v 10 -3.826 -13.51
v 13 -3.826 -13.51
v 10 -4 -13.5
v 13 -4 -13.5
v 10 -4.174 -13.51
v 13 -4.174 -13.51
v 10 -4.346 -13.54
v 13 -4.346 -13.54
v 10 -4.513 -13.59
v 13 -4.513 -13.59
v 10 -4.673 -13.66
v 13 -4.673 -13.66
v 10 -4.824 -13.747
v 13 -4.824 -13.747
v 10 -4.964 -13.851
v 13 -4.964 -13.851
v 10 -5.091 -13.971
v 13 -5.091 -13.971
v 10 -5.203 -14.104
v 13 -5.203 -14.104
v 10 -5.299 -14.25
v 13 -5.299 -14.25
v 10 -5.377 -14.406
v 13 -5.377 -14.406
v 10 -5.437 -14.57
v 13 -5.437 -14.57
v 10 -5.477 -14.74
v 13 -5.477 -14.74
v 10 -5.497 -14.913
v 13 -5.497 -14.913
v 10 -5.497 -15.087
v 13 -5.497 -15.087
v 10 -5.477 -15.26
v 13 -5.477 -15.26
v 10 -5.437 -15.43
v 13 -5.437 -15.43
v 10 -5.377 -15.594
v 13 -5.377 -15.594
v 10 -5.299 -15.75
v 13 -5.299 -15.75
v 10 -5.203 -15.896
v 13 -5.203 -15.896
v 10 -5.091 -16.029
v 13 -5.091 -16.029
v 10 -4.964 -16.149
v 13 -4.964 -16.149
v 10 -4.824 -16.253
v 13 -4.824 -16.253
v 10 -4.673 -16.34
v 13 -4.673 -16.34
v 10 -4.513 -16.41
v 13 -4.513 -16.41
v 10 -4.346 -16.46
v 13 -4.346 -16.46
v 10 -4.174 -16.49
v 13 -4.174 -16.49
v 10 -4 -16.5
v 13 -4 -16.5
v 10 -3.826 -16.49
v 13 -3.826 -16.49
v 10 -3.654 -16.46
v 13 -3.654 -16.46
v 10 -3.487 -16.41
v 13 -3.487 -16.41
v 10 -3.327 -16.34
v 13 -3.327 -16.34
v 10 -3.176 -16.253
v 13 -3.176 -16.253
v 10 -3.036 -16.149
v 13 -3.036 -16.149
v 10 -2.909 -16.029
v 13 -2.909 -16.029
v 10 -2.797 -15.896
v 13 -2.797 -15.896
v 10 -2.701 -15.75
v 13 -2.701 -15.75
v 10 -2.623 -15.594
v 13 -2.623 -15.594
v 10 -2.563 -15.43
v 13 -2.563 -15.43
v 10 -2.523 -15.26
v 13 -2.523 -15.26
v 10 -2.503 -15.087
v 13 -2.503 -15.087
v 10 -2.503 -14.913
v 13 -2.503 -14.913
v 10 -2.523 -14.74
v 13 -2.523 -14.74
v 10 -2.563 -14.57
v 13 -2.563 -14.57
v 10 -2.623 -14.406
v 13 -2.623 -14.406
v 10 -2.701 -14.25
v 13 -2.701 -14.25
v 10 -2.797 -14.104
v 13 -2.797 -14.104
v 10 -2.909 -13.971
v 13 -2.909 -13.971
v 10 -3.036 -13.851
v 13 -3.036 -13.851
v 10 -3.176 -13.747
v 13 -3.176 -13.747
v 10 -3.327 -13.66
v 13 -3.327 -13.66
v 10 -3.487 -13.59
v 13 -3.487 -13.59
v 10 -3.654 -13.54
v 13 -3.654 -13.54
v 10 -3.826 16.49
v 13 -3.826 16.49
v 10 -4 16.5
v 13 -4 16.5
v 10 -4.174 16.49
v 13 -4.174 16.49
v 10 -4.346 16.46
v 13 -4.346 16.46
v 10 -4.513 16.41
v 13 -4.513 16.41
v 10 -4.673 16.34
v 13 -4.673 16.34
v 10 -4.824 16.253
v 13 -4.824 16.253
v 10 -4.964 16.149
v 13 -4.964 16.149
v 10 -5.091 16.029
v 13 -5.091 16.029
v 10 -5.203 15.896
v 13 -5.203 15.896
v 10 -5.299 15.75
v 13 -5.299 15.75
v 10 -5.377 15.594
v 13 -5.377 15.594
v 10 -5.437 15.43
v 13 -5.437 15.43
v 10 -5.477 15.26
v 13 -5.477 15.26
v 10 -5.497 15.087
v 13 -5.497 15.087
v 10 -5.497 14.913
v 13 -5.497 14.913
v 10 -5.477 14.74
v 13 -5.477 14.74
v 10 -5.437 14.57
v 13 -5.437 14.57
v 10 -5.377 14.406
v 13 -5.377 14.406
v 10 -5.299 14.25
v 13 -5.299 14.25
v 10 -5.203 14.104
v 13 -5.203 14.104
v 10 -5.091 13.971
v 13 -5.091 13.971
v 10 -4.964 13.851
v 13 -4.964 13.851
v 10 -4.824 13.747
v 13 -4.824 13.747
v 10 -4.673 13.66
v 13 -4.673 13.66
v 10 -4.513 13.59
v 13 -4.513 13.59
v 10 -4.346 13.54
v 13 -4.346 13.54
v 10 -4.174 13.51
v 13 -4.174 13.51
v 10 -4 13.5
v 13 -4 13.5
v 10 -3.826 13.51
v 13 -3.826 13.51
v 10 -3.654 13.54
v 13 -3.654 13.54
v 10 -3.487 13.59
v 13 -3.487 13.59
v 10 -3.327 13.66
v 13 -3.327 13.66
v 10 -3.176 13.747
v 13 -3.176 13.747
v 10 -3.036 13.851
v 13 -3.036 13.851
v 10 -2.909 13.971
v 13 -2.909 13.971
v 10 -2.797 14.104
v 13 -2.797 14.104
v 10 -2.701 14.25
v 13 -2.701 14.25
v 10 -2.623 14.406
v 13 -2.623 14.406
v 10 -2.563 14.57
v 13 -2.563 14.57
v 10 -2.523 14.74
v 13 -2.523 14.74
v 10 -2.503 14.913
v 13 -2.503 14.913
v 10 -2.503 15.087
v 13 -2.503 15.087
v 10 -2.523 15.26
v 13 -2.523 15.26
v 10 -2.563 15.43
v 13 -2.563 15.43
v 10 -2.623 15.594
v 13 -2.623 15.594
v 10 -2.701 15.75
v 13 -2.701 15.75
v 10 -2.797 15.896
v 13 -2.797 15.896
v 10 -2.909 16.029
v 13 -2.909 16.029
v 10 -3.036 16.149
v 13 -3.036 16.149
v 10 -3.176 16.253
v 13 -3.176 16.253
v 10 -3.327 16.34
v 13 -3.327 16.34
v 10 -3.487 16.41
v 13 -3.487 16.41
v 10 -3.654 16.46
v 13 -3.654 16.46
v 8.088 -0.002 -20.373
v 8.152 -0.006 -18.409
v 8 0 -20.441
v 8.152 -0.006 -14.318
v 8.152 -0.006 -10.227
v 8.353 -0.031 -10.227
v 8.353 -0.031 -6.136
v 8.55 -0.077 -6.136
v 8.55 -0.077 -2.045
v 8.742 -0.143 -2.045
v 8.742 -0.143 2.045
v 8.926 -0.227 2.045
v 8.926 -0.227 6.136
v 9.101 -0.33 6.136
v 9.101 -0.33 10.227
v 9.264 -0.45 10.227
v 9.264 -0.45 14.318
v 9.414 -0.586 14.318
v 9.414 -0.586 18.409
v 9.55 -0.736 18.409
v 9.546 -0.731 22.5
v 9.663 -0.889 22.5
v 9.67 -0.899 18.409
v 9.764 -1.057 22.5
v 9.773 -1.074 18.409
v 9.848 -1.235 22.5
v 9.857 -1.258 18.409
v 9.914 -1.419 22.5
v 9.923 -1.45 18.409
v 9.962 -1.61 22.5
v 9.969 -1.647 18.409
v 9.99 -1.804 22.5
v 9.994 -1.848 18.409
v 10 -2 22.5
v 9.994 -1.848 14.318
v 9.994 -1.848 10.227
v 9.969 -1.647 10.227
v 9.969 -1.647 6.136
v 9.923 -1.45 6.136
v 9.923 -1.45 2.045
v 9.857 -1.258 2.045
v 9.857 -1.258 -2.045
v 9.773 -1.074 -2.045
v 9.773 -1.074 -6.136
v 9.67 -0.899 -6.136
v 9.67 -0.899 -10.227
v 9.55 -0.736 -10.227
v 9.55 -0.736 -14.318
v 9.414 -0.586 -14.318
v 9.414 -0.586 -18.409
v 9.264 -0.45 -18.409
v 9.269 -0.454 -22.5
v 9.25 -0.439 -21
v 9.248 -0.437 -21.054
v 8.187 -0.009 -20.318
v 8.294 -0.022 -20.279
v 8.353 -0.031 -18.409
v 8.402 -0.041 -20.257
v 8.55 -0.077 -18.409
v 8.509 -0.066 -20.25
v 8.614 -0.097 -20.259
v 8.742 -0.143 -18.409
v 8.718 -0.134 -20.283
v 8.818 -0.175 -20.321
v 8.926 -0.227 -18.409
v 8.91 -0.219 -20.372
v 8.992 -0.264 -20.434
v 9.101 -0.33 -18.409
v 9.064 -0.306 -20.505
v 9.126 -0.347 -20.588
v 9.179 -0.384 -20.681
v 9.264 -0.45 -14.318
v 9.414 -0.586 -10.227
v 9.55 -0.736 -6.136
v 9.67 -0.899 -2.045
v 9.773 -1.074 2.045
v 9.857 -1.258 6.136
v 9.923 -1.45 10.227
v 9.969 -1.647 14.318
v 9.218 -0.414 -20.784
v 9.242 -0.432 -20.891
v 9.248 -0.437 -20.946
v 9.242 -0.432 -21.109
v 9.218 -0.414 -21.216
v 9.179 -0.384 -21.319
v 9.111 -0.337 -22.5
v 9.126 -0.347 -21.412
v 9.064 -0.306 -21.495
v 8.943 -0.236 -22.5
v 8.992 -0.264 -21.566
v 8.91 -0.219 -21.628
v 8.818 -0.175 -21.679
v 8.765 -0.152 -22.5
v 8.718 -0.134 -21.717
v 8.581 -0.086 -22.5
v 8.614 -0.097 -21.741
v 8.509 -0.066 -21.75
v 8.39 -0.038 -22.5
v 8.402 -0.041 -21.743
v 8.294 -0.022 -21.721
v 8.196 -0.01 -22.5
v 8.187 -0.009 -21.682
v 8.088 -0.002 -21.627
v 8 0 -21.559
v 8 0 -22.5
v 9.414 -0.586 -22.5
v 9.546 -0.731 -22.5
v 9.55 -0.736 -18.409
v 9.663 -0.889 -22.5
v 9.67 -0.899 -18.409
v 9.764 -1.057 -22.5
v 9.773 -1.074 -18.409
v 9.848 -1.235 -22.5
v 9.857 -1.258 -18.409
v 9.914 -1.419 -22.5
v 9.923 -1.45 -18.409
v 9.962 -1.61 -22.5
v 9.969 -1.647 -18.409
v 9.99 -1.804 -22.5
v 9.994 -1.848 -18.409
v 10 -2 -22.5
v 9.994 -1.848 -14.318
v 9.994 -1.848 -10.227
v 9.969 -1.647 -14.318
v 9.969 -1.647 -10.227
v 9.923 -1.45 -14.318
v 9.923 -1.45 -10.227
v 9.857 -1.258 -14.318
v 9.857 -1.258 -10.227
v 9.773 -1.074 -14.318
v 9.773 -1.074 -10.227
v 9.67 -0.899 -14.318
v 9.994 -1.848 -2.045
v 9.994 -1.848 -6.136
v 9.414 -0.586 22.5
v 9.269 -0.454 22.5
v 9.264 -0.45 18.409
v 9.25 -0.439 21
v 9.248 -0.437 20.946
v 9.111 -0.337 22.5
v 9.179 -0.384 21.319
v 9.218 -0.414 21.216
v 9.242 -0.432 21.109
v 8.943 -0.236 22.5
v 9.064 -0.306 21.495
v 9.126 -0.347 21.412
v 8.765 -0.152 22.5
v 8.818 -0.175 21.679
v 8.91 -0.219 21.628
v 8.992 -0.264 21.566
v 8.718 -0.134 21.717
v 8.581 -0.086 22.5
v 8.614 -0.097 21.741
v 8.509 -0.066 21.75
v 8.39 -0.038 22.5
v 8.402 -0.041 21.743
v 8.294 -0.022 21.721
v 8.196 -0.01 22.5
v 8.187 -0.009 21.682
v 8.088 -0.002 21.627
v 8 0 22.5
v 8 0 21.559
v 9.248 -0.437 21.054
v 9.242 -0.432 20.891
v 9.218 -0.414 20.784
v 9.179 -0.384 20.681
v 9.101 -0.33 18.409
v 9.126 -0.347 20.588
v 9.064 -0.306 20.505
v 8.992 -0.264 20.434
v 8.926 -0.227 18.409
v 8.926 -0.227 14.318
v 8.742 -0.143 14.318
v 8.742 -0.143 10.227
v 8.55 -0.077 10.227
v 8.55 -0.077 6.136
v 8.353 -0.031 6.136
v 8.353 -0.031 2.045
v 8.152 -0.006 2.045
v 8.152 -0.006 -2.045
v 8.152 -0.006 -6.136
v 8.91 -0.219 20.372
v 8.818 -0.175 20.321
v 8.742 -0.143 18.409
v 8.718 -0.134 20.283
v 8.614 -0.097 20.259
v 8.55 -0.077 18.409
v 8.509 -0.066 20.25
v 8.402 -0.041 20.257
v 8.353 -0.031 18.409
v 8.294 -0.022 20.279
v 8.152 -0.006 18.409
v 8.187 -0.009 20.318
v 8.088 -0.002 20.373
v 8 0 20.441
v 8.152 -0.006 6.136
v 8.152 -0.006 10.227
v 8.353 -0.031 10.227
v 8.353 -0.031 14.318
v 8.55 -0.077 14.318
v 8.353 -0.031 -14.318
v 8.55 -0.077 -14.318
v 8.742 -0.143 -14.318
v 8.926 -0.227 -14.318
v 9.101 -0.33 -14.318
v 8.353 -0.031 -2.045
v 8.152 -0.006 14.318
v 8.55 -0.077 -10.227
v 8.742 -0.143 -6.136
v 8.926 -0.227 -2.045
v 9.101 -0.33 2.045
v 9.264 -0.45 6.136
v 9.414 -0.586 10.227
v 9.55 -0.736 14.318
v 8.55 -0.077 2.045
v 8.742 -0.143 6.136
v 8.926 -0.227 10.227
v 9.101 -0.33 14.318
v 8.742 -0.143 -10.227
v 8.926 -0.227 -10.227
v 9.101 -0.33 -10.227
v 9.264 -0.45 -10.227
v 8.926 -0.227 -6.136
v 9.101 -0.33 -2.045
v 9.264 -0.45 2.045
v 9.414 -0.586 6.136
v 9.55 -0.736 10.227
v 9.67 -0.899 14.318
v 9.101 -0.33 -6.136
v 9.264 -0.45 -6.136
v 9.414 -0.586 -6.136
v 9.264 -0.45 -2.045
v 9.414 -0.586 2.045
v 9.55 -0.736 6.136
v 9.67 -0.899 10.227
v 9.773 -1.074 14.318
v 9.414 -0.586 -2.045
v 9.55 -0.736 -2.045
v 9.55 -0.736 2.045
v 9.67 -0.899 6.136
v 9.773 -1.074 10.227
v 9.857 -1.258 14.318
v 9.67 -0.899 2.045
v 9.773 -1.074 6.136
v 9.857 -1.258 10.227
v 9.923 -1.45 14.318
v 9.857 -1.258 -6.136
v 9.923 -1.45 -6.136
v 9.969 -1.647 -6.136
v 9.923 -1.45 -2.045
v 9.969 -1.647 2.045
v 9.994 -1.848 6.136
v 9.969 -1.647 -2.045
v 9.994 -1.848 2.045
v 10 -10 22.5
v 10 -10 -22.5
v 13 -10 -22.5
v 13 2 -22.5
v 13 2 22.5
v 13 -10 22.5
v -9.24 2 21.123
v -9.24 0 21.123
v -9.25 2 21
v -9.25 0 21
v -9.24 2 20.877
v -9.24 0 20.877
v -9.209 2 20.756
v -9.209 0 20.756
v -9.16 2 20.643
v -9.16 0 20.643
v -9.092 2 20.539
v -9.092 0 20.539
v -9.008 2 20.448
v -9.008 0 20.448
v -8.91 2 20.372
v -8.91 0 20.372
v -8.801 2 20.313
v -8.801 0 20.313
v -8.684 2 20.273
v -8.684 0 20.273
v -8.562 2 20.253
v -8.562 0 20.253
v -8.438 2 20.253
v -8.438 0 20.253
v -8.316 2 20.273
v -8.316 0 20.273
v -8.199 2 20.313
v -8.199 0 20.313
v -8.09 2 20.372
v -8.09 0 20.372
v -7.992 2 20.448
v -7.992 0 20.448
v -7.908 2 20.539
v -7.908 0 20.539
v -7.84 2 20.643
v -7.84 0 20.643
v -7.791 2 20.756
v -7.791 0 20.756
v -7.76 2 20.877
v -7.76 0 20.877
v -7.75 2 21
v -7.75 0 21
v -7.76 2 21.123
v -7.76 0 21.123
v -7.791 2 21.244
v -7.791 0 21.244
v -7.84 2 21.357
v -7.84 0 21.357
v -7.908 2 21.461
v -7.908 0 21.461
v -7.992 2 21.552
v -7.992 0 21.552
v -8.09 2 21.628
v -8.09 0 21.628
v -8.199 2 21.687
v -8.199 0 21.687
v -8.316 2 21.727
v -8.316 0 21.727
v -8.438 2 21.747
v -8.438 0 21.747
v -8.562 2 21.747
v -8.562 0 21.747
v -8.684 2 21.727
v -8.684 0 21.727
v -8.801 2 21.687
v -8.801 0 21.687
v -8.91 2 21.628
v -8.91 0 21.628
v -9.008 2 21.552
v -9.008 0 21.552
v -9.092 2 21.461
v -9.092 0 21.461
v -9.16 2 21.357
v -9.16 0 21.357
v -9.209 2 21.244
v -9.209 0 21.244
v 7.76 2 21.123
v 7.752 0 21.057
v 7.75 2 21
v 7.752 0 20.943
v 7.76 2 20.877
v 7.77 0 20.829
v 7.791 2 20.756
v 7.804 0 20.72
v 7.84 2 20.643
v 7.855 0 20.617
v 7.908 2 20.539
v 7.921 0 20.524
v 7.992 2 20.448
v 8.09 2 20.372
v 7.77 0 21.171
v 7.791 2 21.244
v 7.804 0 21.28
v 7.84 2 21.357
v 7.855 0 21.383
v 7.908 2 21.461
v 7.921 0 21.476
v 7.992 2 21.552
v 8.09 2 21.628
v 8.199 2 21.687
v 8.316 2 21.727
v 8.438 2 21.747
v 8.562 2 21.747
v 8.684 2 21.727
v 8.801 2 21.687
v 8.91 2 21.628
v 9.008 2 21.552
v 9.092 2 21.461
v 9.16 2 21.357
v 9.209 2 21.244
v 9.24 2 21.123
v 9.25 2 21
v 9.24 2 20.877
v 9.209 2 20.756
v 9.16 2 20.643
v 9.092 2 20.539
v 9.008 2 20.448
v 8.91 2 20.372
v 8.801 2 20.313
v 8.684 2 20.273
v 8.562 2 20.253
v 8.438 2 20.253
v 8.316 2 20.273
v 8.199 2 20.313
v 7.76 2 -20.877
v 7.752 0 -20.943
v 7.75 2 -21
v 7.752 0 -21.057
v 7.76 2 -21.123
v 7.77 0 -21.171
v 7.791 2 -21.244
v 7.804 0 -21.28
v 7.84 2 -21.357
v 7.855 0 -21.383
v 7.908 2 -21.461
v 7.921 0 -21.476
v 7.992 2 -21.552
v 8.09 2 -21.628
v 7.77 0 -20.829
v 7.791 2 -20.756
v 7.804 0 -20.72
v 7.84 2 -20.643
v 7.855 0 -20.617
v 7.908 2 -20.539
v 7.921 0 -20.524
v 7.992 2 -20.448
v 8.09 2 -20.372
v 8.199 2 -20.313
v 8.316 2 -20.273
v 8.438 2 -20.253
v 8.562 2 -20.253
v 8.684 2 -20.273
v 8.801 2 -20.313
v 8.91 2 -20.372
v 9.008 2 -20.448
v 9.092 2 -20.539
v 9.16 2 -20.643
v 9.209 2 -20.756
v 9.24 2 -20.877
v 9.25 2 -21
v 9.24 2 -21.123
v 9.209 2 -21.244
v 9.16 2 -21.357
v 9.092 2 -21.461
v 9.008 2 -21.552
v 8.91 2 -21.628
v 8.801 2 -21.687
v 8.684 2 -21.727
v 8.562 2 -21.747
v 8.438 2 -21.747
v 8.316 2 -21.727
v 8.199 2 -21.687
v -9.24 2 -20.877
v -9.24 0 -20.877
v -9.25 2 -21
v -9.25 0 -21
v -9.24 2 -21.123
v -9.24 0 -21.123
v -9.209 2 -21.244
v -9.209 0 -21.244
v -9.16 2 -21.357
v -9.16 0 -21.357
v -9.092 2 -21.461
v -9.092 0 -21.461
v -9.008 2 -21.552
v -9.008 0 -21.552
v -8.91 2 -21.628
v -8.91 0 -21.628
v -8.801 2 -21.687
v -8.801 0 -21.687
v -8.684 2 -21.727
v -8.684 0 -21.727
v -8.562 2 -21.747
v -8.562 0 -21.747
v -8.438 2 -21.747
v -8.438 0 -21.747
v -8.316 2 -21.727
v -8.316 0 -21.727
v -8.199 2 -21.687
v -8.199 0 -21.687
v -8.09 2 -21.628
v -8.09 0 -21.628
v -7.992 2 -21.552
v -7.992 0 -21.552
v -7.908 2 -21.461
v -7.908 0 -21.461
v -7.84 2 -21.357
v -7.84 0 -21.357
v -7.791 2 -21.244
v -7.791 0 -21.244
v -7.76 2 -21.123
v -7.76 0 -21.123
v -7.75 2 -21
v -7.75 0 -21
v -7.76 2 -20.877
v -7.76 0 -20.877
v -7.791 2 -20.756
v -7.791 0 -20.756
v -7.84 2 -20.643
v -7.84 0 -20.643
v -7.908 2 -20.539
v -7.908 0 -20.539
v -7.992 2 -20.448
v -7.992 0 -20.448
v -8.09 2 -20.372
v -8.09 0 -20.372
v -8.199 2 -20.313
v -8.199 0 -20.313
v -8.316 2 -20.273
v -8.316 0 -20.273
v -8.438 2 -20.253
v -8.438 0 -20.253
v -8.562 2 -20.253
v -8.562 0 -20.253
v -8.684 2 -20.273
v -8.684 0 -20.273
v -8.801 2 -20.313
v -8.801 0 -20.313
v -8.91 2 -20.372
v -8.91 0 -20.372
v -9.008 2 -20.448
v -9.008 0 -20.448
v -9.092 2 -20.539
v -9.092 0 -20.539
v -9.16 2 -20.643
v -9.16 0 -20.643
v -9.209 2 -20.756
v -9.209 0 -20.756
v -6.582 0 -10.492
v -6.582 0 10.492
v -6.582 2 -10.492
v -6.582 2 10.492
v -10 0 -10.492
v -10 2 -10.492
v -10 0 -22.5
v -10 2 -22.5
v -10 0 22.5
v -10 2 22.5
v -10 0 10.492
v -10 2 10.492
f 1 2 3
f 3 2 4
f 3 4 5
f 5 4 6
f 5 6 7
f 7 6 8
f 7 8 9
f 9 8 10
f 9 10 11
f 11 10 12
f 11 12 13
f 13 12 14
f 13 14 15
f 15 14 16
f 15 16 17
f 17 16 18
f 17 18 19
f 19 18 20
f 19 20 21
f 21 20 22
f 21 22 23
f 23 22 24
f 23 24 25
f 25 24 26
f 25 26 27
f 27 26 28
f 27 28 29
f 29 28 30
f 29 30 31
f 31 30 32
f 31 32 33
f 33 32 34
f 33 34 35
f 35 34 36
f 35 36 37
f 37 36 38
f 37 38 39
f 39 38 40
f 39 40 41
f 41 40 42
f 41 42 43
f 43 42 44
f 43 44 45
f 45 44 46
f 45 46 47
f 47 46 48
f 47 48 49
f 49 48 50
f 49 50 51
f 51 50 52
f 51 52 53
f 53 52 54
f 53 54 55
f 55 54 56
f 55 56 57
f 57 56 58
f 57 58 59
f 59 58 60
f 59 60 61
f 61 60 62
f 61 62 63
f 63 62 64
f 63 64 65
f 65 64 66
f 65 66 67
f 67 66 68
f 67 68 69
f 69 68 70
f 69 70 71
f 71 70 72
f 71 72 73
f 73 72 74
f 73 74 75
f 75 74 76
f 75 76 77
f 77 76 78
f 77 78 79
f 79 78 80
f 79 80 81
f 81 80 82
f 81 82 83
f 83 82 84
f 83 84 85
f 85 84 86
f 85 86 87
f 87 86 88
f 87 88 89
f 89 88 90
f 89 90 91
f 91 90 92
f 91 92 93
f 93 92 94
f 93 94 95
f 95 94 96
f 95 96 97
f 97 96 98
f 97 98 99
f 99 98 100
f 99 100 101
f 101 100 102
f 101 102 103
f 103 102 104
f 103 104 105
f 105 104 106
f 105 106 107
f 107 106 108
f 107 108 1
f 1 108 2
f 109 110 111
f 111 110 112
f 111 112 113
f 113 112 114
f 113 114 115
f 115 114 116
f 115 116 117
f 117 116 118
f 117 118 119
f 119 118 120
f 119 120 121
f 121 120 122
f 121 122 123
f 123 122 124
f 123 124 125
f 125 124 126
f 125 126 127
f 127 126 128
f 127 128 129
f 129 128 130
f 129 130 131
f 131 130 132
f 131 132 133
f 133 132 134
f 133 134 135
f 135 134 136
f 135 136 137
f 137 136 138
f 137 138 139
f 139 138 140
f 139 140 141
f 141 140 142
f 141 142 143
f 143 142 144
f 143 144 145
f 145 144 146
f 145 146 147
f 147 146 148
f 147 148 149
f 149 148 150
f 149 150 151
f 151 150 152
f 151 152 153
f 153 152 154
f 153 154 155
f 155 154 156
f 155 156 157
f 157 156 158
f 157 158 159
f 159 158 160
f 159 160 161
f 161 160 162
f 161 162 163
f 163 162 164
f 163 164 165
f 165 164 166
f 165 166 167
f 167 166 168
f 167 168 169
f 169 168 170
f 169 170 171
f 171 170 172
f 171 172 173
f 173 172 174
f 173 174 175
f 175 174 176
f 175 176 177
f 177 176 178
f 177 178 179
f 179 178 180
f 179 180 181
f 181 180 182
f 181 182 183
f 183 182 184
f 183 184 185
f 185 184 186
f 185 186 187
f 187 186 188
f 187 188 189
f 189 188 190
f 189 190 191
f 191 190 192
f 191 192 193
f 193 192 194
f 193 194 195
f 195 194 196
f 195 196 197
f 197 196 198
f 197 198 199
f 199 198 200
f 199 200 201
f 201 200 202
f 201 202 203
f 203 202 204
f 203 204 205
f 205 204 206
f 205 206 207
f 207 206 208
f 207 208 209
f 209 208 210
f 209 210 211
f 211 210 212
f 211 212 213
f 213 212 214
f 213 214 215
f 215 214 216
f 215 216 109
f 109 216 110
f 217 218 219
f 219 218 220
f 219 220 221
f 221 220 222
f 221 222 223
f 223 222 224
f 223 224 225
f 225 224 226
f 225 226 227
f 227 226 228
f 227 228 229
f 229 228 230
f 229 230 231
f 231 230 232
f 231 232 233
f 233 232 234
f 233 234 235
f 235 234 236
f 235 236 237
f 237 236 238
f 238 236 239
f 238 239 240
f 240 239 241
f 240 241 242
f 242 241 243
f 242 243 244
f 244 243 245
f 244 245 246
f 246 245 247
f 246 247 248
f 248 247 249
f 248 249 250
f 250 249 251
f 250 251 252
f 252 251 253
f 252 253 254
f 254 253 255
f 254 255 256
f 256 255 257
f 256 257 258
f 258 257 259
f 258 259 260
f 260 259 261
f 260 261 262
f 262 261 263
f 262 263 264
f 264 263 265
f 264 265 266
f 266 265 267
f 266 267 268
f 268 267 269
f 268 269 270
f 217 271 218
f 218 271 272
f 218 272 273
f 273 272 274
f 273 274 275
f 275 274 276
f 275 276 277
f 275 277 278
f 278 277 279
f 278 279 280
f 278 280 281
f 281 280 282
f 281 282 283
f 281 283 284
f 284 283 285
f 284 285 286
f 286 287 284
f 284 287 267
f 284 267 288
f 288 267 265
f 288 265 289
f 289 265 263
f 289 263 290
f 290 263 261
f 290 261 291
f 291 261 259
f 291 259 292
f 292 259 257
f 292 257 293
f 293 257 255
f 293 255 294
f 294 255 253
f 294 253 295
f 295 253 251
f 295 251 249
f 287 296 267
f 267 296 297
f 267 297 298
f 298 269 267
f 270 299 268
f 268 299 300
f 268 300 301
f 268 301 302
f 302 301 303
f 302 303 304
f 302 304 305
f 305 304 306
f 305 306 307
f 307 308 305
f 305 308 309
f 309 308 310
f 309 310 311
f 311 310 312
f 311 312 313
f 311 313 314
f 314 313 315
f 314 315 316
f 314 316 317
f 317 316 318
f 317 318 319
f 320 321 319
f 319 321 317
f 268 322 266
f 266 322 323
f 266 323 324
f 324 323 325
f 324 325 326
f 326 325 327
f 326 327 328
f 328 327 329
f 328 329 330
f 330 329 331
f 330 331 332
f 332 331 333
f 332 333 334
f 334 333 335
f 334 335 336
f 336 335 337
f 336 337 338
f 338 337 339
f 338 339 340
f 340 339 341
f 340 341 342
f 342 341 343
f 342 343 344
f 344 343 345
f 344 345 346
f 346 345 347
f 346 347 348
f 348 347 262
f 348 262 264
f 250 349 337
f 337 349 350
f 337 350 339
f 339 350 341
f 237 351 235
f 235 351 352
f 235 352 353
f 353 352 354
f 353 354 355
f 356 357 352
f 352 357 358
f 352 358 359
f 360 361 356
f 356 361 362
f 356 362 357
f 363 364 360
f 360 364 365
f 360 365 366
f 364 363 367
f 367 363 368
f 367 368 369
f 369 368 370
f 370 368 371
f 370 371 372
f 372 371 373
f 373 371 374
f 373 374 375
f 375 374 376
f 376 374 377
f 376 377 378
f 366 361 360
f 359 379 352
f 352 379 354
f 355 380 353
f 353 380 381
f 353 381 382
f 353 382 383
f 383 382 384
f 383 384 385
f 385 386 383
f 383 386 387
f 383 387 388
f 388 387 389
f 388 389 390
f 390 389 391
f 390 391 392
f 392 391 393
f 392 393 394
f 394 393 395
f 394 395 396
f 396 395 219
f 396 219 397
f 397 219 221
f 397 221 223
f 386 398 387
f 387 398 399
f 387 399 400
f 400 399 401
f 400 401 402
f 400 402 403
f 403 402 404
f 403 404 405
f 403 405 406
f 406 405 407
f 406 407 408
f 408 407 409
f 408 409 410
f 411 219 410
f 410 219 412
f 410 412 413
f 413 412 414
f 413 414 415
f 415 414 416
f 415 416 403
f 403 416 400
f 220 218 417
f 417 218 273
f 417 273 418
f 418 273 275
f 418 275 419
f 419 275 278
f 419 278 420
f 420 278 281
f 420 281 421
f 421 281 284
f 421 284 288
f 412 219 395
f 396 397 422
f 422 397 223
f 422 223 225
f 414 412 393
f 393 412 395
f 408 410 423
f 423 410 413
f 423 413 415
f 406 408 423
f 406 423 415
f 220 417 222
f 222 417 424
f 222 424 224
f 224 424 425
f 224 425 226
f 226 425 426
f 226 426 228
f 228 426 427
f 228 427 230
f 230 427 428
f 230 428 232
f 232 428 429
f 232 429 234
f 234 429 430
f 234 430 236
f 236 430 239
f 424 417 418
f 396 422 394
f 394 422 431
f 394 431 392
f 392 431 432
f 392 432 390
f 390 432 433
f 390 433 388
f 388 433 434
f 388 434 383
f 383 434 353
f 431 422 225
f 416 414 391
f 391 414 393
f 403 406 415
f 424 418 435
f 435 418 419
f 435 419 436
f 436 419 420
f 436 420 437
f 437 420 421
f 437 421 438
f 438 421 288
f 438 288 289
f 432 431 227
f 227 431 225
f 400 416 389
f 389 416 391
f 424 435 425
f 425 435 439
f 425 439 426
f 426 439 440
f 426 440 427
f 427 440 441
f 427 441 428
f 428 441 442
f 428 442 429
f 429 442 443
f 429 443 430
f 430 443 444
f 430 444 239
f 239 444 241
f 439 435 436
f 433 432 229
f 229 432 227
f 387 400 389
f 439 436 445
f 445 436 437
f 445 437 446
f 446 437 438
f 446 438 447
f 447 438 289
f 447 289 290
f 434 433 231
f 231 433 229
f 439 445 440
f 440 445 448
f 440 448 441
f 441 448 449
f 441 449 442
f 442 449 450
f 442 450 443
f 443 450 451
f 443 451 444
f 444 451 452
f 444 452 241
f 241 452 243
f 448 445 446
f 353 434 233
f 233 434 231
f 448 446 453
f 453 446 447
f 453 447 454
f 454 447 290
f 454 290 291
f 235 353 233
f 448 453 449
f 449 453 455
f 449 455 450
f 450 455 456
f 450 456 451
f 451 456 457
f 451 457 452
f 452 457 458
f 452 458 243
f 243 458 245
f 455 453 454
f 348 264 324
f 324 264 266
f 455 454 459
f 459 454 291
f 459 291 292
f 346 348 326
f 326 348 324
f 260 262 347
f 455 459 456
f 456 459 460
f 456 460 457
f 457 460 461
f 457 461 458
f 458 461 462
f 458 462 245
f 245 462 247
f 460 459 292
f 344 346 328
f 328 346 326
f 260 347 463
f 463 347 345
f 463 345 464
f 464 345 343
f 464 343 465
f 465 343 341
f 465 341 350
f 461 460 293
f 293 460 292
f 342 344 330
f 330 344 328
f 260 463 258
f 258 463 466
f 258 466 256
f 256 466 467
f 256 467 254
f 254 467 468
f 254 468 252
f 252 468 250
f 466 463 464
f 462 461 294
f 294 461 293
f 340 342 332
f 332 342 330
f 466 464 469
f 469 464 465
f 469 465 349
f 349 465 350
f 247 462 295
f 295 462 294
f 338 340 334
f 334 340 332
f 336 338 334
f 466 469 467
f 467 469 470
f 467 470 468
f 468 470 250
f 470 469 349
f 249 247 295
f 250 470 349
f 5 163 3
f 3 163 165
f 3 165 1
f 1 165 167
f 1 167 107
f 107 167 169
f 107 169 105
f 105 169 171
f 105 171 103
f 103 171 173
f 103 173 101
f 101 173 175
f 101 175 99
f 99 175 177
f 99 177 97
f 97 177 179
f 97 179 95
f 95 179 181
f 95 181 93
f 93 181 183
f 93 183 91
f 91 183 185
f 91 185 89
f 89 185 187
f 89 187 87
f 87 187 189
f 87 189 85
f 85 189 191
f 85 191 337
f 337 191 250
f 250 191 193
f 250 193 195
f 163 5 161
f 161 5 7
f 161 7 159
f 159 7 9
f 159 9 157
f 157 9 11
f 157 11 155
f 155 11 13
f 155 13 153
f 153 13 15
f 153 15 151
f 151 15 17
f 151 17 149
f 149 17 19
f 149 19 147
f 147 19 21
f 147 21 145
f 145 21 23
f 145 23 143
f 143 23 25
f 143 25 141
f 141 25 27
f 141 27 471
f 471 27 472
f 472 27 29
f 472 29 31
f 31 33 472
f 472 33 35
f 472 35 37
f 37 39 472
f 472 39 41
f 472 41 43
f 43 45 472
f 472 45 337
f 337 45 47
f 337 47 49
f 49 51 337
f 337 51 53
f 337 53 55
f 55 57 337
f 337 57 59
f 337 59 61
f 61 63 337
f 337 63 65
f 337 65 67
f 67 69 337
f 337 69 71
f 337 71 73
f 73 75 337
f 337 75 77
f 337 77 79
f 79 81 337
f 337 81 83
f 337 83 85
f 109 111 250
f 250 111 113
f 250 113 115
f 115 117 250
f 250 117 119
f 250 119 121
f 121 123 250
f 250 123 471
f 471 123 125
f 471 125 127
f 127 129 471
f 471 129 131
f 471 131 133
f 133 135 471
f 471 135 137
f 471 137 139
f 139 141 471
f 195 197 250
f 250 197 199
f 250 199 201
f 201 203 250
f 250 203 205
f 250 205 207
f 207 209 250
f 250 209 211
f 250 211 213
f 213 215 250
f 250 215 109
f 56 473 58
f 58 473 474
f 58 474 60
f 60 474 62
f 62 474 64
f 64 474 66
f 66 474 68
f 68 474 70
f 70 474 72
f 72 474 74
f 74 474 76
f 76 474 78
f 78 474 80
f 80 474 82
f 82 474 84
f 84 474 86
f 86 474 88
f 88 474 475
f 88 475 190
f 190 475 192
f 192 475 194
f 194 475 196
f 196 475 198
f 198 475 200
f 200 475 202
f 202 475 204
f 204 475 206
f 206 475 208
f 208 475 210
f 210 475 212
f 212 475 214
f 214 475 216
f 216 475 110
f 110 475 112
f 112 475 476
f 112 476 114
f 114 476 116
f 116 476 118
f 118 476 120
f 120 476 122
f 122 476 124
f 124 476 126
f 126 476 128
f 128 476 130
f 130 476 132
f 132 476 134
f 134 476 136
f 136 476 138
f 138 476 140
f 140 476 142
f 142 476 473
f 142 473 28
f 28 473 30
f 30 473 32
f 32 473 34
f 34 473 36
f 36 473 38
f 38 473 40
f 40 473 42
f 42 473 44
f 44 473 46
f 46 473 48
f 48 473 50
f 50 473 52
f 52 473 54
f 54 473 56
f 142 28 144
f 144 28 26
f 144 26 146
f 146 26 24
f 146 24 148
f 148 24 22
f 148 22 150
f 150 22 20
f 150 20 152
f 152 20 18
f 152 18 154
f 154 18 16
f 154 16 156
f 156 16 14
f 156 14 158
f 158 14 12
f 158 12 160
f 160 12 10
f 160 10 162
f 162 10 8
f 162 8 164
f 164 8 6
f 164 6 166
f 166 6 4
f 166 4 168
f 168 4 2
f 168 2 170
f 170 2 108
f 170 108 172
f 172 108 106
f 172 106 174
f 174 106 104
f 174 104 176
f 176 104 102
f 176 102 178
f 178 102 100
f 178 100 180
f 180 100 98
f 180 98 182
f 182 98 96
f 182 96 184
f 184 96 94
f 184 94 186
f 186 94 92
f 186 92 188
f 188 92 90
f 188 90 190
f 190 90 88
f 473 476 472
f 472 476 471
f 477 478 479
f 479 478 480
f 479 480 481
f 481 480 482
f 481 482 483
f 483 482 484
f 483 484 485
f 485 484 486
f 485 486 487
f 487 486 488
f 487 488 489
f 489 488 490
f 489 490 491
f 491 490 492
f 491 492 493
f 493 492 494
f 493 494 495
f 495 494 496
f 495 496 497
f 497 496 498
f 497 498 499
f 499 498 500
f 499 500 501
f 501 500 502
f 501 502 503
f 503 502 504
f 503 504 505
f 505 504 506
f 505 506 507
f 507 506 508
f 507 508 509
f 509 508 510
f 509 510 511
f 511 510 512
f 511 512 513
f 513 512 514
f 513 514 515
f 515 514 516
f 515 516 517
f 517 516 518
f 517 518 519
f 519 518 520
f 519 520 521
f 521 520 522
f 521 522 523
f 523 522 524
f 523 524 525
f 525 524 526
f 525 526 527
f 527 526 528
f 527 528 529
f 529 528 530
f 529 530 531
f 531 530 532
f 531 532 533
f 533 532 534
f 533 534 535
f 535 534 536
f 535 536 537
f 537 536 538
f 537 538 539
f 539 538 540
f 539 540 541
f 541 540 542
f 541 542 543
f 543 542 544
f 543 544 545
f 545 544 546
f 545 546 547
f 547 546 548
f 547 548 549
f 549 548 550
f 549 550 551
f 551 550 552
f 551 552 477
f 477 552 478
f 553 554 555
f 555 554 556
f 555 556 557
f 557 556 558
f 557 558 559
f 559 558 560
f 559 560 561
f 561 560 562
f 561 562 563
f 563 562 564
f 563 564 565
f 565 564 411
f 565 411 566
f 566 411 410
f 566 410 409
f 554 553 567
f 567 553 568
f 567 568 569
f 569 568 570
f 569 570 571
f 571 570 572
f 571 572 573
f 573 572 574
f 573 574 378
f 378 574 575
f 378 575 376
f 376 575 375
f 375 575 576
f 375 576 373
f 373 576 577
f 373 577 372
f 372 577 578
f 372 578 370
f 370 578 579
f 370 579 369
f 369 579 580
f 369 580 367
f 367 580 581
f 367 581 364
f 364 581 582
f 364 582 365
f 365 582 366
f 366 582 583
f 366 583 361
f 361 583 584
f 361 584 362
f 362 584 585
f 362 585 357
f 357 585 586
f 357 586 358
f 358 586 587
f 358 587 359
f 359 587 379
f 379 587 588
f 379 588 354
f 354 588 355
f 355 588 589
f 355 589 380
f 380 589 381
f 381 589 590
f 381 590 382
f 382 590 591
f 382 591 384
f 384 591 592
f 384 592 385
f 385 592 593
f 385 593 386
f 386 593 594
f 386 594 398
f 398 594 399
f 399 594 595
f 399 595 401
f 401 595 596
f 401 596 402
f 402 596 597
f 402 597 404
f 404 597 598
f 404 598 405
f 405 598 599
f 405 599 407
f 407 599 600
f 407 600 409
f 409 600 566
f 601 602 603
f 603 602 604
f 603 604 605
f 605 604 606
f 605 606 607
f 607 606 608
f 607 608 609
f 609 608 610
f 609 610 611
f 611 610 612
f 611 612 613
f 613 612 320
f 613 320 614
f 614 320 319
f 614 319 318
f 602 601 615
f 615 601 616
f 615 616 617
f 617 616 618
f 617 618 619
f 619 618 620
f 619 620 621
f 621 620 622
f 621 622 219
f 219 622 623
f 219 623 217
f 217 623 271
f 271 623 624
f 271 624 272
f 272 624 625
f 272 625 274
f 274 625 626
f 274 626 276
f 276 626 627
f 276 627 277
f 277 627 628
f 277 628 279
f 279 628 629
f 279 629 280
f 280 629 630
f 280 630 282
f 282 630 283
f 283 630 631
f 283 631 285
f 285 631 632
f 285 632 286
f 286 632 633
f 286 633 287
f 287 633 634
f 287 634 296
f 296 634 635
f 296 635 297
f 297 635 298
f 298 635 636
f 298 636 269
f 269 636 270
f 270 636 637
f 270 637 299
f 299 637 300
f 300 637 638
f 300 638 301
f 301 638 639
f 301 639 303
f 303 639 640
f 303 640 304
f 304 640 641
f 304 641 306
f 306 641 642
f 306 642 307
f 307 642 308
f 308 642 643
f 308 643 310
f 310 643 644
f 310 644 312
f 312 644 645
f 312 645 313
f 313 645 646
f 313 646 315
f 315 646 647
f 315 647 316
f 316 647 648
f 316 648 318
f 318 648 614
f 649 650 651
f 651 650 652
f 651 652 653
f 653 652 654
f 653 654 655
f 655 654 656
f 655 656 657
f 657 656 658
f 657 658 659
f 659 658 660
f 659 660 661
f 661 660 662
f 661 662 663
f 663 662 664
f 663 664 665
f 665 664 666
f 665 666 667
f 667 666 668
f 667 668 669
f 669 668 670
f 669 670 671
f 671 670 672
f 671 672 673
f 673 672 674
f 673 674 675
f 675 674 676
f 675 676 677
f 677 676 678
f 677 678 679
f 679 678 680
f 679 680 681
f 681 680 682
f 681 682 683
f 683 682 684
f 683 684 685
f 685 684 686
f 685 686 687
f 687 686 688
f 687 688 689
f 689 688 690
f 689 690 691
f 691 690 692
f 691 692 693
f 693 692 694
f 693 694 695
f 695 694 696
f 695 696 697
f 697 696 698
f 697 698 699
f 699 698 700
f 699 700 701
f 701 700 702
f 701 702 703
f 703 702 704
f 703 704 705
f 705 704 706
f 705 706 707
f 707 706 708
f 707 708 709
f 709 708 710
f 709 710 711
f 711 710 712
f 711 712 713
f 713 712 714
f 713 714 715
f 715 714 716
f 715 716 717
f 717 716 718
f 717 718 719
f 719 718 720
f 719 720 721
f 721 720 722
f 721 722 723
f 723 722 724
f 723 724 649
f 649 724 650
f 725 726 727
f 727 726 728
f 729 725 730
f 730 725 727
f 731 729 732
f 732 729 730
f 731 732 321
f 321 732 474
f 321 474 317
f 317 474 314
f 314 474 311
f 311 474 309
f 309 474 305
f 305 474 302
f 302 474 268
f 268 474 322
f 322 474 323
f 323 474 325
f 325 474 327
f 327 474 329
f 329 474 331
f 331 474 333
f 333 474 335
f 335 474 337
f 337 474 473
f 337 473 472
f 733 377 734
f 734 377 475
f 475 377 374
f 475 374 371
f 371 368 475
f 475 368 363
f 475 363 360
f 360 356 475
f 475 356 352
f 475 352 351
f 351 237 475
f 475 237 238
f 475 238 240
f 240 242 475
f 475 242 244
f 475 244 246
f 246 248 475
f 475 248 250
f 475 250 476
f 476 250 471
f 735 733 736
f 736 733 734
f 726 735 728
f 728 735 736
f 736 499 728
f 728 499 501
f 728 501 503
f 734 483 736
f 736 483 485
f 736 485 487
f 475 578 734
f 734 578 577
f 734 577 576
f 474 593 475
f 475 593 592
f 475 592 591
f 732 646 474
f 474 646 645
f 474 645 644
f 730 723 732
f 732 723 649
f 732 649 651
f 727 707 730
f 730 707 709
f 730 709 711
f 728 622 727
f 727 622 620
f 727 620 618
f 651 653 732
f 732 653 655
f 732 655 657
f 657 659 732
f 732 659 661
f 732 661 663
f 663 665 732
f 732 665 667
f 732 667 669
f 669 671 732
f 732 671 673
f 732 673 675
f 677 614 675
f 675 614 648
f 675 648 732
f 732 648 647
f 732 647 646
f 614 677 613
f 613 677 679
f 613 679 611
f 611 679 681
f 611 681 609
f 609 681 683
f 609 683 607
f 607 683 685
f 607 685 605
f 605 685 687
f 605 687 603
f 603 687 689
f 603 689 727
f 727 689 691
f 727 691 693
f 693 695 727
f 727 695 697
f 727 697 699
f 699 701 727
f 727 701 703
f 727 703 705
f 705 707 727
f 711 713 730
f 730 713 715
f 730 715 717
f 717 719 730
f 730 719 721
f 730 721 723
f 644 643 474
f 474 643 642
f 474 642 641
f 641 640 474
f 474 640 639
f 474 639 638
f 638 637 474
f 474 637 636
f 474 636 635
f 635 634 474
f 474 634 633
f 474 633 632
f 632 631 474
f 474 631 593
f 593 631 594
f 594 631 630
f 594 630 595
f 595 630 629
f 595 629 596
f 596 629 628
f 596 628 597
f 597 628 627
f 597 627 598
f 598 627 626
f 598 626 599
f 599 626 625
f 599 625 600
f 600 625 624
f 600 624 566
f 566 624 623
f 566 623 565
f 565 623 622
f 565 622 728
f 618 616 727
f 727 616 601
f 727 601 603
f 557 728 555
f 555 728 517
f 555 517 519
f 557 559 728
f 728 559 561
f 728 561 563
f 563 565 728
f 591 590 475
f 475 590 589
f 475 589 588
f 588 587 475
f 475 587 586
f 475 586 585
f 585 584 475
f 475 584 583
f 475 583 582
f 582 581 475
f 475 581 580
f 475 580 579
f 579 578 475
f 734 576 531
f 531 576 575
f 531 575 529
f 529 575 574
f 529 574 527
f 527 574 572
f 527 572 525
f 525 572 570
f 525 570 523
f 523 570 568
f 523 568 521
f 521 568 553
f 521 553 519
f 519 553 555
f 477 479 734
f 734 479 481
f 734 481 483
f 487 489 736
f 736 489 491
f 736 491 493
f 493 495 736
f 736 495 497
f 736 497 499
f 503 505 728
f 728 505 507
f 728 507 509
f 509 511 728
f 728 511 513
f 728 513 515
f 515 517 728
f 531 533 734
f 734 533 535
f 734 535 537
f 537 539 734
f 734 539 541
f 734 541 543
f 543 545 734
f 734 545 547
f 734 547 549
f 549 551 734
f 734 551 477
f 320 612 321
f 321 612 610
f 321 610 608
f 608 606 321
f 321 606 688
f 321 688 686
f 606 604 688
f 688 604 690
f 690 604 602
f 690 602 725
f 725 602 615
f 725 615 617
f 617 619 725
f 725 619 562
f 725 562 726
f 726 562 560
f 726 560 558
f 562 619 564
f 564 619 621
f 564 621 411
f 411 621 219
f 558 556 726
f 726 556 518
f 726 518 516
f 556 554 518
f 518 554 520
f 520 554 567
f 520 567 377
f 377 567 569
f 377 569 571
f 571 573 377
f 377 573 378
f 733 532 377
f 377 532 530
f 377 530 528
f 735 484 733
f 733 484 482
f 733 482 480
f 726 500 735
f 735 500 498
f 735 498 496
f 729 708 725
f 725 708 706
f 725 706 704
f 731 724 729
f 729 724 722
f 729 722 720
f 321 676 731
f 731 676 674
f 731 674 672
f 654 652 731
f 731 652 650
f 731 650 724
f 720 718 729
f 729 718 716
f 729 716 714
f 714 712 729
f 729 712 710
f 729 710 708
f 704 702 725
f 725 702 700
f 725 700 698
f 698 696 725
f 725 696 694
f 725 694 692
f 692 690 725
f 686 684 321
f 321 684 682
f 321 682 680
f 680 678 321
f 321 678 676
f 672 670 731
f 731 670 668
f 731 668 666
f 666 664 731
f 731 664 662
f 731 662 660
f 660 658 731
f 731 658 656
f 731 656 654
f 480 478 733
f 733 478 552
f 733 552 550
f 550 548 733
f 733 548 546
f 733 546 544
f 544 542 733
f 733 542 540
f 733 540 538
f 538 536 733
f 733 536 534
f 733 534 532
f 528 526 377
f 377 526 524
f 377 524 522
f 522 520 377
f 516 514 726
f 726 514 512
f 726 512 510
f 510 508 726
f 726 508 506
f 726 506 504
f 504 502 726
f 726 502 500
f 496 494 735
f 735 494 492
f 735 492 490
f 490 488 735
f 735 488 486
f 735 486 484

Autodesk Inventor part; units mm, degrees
ref_plane "YZ Plane" through (0, 0, 0) normal (1, 0, 0) x (0, 1, 0)
ref_plane "XZ Plane" through (0, 0, 0) normal (0, 1, 0) x (-1, 0, 0)
ref_plane "XY Plane" through (0, 0, 0) normal (0, 0, 1) x (1, 0, 0)
sketch "Sketch1" plane through (0, 0, 0) normal (0, 1, 0) x (-1, 0, 0)
  line L0 (10, 22.5) -> (-10, 22.5)
  line L1 (-10, 22.5) -> (-10, -22.5)
  line L2 (-10, -22.5) -> (10, -22.5)
  line L3 (10, -22.5) -> (10, 22.5)
  line L4 (10, 22.5) -> (-10, -22.5) construction
  line L5 (-10, 22.5) -> (10, -22.5) construction
  line L6 (13.4184, 10.4917) -> (6.5816, 10.4917)
  line L7 (6.5816, 10.4917) -> (6.5816, -10.4917)
  line L8 (6.5816, -10.4917) -> (13.4184, -10.4917)
  line L9 (13.4184, -10.4917) -> (13.4184, 10.4917)
  line L10 (13.4184, 10.4917) -> (6.5816, -10.4917) construction
  line L11 (6.5816, 10.4917) -> (13.4184, -10.4917) construction
  line L12 (8.5, 21) -> (-8.5, 21)
  line L13 (-8.5, 21) -> (-8.5, -21)
  line L14 (-8.5, -21) -> (8.5, -21)
  line L15 (8.5, -21) -> (8.5, 21)
  line L16 (8.5, 21) -> (-8.5, -21) construction
  line L17 (-8.5, 21) -> (8.5, -21) construction
  circle A0 centre (8.5, 21) radius 0.75
  circle A1 centre (8.5, -21) radius 0.75
  circle A2 centre (-8.5, -21) radius 0.75
  circle A3 centre (-8.5, 21) radius 0.75
  point P0 (0, 0)
  point P1 (10, 0)
  point P2 (10, 10.4917)
  point P3 (10, -10.4917)
  dimension "d0" = 20
  dimension "d1" = 45
  dimension "d2" = 17
  dimension "d3" = 42
  dimension "d4" = 1.5
  dimension "d5" = 1.5
  dimension "d6" = 1.5
  dimension "d7" = 1.5
extrude "Extrusion1" add sketch "Sketch1" along normal blind 2 contours L3 L6 L15 A0 L12 A3 L13 A2 L14 A1 L8 L2 L1 L0 | L6 L7 L8 L15 A1 L14 A2 L13 A3 L12 A0
sketch "Sketch2" plane through (0, 0, 0) normal (0, -1, 0) x (1, 0, 0)
  line L0 (10, -22.5) -> (-10, -22.5) projected
  line L1 (10, -22.5) -> (13, -22.5)
  line L2 (13, -22.5) -> (13, 22.5)
  line L3 (-10, 22.5) -> (10, 22.5) projected
  line L4 (13, 22.5) -> (10, 22.5)
  line L5 (10, 22.5) -> (10, -22.5)
  point P0 (0, 0)
  dimension "d10" = 3
  dimension "d11" = 45
extrude "Extrusion2" add sketch "Sketch2" along normal blind 10 and the other way blind 2
fillet "Fillet1" radius 2 1 edges at (10, 0, 0)
sketch "Sketch3" plane through (13, -10, 22.5) normal (1, 0, 0) x (0, 0, -1)
  line L0 (0, 0) -> (45, 0) projected
  line L1 (22.5, 0) -> (22.5, 5)
  line L2 (22.5, 5) -> (22.5, 6)
  line L3 (22.5, 6) -> (7.5, 6)
  line L4 (7.5, 6) -> (37.5, 6)
  circle A0 centre (37.5, 6) radius 1.5
  circle A1 centre (7.5, 6) radius 1.5
  point P0 (22.5, 10)
  dimension "d17" = 5
  dimension "d18" = 1
  dimension "d19" = 15
  dimension "d20" = 30
  dimension "d21" = 3
  dimension "d22" = 3
extrude "Extrusion3" cut sketch "Sketch3" against normal blind 10
properties part number "Ultrasonic_holder"
